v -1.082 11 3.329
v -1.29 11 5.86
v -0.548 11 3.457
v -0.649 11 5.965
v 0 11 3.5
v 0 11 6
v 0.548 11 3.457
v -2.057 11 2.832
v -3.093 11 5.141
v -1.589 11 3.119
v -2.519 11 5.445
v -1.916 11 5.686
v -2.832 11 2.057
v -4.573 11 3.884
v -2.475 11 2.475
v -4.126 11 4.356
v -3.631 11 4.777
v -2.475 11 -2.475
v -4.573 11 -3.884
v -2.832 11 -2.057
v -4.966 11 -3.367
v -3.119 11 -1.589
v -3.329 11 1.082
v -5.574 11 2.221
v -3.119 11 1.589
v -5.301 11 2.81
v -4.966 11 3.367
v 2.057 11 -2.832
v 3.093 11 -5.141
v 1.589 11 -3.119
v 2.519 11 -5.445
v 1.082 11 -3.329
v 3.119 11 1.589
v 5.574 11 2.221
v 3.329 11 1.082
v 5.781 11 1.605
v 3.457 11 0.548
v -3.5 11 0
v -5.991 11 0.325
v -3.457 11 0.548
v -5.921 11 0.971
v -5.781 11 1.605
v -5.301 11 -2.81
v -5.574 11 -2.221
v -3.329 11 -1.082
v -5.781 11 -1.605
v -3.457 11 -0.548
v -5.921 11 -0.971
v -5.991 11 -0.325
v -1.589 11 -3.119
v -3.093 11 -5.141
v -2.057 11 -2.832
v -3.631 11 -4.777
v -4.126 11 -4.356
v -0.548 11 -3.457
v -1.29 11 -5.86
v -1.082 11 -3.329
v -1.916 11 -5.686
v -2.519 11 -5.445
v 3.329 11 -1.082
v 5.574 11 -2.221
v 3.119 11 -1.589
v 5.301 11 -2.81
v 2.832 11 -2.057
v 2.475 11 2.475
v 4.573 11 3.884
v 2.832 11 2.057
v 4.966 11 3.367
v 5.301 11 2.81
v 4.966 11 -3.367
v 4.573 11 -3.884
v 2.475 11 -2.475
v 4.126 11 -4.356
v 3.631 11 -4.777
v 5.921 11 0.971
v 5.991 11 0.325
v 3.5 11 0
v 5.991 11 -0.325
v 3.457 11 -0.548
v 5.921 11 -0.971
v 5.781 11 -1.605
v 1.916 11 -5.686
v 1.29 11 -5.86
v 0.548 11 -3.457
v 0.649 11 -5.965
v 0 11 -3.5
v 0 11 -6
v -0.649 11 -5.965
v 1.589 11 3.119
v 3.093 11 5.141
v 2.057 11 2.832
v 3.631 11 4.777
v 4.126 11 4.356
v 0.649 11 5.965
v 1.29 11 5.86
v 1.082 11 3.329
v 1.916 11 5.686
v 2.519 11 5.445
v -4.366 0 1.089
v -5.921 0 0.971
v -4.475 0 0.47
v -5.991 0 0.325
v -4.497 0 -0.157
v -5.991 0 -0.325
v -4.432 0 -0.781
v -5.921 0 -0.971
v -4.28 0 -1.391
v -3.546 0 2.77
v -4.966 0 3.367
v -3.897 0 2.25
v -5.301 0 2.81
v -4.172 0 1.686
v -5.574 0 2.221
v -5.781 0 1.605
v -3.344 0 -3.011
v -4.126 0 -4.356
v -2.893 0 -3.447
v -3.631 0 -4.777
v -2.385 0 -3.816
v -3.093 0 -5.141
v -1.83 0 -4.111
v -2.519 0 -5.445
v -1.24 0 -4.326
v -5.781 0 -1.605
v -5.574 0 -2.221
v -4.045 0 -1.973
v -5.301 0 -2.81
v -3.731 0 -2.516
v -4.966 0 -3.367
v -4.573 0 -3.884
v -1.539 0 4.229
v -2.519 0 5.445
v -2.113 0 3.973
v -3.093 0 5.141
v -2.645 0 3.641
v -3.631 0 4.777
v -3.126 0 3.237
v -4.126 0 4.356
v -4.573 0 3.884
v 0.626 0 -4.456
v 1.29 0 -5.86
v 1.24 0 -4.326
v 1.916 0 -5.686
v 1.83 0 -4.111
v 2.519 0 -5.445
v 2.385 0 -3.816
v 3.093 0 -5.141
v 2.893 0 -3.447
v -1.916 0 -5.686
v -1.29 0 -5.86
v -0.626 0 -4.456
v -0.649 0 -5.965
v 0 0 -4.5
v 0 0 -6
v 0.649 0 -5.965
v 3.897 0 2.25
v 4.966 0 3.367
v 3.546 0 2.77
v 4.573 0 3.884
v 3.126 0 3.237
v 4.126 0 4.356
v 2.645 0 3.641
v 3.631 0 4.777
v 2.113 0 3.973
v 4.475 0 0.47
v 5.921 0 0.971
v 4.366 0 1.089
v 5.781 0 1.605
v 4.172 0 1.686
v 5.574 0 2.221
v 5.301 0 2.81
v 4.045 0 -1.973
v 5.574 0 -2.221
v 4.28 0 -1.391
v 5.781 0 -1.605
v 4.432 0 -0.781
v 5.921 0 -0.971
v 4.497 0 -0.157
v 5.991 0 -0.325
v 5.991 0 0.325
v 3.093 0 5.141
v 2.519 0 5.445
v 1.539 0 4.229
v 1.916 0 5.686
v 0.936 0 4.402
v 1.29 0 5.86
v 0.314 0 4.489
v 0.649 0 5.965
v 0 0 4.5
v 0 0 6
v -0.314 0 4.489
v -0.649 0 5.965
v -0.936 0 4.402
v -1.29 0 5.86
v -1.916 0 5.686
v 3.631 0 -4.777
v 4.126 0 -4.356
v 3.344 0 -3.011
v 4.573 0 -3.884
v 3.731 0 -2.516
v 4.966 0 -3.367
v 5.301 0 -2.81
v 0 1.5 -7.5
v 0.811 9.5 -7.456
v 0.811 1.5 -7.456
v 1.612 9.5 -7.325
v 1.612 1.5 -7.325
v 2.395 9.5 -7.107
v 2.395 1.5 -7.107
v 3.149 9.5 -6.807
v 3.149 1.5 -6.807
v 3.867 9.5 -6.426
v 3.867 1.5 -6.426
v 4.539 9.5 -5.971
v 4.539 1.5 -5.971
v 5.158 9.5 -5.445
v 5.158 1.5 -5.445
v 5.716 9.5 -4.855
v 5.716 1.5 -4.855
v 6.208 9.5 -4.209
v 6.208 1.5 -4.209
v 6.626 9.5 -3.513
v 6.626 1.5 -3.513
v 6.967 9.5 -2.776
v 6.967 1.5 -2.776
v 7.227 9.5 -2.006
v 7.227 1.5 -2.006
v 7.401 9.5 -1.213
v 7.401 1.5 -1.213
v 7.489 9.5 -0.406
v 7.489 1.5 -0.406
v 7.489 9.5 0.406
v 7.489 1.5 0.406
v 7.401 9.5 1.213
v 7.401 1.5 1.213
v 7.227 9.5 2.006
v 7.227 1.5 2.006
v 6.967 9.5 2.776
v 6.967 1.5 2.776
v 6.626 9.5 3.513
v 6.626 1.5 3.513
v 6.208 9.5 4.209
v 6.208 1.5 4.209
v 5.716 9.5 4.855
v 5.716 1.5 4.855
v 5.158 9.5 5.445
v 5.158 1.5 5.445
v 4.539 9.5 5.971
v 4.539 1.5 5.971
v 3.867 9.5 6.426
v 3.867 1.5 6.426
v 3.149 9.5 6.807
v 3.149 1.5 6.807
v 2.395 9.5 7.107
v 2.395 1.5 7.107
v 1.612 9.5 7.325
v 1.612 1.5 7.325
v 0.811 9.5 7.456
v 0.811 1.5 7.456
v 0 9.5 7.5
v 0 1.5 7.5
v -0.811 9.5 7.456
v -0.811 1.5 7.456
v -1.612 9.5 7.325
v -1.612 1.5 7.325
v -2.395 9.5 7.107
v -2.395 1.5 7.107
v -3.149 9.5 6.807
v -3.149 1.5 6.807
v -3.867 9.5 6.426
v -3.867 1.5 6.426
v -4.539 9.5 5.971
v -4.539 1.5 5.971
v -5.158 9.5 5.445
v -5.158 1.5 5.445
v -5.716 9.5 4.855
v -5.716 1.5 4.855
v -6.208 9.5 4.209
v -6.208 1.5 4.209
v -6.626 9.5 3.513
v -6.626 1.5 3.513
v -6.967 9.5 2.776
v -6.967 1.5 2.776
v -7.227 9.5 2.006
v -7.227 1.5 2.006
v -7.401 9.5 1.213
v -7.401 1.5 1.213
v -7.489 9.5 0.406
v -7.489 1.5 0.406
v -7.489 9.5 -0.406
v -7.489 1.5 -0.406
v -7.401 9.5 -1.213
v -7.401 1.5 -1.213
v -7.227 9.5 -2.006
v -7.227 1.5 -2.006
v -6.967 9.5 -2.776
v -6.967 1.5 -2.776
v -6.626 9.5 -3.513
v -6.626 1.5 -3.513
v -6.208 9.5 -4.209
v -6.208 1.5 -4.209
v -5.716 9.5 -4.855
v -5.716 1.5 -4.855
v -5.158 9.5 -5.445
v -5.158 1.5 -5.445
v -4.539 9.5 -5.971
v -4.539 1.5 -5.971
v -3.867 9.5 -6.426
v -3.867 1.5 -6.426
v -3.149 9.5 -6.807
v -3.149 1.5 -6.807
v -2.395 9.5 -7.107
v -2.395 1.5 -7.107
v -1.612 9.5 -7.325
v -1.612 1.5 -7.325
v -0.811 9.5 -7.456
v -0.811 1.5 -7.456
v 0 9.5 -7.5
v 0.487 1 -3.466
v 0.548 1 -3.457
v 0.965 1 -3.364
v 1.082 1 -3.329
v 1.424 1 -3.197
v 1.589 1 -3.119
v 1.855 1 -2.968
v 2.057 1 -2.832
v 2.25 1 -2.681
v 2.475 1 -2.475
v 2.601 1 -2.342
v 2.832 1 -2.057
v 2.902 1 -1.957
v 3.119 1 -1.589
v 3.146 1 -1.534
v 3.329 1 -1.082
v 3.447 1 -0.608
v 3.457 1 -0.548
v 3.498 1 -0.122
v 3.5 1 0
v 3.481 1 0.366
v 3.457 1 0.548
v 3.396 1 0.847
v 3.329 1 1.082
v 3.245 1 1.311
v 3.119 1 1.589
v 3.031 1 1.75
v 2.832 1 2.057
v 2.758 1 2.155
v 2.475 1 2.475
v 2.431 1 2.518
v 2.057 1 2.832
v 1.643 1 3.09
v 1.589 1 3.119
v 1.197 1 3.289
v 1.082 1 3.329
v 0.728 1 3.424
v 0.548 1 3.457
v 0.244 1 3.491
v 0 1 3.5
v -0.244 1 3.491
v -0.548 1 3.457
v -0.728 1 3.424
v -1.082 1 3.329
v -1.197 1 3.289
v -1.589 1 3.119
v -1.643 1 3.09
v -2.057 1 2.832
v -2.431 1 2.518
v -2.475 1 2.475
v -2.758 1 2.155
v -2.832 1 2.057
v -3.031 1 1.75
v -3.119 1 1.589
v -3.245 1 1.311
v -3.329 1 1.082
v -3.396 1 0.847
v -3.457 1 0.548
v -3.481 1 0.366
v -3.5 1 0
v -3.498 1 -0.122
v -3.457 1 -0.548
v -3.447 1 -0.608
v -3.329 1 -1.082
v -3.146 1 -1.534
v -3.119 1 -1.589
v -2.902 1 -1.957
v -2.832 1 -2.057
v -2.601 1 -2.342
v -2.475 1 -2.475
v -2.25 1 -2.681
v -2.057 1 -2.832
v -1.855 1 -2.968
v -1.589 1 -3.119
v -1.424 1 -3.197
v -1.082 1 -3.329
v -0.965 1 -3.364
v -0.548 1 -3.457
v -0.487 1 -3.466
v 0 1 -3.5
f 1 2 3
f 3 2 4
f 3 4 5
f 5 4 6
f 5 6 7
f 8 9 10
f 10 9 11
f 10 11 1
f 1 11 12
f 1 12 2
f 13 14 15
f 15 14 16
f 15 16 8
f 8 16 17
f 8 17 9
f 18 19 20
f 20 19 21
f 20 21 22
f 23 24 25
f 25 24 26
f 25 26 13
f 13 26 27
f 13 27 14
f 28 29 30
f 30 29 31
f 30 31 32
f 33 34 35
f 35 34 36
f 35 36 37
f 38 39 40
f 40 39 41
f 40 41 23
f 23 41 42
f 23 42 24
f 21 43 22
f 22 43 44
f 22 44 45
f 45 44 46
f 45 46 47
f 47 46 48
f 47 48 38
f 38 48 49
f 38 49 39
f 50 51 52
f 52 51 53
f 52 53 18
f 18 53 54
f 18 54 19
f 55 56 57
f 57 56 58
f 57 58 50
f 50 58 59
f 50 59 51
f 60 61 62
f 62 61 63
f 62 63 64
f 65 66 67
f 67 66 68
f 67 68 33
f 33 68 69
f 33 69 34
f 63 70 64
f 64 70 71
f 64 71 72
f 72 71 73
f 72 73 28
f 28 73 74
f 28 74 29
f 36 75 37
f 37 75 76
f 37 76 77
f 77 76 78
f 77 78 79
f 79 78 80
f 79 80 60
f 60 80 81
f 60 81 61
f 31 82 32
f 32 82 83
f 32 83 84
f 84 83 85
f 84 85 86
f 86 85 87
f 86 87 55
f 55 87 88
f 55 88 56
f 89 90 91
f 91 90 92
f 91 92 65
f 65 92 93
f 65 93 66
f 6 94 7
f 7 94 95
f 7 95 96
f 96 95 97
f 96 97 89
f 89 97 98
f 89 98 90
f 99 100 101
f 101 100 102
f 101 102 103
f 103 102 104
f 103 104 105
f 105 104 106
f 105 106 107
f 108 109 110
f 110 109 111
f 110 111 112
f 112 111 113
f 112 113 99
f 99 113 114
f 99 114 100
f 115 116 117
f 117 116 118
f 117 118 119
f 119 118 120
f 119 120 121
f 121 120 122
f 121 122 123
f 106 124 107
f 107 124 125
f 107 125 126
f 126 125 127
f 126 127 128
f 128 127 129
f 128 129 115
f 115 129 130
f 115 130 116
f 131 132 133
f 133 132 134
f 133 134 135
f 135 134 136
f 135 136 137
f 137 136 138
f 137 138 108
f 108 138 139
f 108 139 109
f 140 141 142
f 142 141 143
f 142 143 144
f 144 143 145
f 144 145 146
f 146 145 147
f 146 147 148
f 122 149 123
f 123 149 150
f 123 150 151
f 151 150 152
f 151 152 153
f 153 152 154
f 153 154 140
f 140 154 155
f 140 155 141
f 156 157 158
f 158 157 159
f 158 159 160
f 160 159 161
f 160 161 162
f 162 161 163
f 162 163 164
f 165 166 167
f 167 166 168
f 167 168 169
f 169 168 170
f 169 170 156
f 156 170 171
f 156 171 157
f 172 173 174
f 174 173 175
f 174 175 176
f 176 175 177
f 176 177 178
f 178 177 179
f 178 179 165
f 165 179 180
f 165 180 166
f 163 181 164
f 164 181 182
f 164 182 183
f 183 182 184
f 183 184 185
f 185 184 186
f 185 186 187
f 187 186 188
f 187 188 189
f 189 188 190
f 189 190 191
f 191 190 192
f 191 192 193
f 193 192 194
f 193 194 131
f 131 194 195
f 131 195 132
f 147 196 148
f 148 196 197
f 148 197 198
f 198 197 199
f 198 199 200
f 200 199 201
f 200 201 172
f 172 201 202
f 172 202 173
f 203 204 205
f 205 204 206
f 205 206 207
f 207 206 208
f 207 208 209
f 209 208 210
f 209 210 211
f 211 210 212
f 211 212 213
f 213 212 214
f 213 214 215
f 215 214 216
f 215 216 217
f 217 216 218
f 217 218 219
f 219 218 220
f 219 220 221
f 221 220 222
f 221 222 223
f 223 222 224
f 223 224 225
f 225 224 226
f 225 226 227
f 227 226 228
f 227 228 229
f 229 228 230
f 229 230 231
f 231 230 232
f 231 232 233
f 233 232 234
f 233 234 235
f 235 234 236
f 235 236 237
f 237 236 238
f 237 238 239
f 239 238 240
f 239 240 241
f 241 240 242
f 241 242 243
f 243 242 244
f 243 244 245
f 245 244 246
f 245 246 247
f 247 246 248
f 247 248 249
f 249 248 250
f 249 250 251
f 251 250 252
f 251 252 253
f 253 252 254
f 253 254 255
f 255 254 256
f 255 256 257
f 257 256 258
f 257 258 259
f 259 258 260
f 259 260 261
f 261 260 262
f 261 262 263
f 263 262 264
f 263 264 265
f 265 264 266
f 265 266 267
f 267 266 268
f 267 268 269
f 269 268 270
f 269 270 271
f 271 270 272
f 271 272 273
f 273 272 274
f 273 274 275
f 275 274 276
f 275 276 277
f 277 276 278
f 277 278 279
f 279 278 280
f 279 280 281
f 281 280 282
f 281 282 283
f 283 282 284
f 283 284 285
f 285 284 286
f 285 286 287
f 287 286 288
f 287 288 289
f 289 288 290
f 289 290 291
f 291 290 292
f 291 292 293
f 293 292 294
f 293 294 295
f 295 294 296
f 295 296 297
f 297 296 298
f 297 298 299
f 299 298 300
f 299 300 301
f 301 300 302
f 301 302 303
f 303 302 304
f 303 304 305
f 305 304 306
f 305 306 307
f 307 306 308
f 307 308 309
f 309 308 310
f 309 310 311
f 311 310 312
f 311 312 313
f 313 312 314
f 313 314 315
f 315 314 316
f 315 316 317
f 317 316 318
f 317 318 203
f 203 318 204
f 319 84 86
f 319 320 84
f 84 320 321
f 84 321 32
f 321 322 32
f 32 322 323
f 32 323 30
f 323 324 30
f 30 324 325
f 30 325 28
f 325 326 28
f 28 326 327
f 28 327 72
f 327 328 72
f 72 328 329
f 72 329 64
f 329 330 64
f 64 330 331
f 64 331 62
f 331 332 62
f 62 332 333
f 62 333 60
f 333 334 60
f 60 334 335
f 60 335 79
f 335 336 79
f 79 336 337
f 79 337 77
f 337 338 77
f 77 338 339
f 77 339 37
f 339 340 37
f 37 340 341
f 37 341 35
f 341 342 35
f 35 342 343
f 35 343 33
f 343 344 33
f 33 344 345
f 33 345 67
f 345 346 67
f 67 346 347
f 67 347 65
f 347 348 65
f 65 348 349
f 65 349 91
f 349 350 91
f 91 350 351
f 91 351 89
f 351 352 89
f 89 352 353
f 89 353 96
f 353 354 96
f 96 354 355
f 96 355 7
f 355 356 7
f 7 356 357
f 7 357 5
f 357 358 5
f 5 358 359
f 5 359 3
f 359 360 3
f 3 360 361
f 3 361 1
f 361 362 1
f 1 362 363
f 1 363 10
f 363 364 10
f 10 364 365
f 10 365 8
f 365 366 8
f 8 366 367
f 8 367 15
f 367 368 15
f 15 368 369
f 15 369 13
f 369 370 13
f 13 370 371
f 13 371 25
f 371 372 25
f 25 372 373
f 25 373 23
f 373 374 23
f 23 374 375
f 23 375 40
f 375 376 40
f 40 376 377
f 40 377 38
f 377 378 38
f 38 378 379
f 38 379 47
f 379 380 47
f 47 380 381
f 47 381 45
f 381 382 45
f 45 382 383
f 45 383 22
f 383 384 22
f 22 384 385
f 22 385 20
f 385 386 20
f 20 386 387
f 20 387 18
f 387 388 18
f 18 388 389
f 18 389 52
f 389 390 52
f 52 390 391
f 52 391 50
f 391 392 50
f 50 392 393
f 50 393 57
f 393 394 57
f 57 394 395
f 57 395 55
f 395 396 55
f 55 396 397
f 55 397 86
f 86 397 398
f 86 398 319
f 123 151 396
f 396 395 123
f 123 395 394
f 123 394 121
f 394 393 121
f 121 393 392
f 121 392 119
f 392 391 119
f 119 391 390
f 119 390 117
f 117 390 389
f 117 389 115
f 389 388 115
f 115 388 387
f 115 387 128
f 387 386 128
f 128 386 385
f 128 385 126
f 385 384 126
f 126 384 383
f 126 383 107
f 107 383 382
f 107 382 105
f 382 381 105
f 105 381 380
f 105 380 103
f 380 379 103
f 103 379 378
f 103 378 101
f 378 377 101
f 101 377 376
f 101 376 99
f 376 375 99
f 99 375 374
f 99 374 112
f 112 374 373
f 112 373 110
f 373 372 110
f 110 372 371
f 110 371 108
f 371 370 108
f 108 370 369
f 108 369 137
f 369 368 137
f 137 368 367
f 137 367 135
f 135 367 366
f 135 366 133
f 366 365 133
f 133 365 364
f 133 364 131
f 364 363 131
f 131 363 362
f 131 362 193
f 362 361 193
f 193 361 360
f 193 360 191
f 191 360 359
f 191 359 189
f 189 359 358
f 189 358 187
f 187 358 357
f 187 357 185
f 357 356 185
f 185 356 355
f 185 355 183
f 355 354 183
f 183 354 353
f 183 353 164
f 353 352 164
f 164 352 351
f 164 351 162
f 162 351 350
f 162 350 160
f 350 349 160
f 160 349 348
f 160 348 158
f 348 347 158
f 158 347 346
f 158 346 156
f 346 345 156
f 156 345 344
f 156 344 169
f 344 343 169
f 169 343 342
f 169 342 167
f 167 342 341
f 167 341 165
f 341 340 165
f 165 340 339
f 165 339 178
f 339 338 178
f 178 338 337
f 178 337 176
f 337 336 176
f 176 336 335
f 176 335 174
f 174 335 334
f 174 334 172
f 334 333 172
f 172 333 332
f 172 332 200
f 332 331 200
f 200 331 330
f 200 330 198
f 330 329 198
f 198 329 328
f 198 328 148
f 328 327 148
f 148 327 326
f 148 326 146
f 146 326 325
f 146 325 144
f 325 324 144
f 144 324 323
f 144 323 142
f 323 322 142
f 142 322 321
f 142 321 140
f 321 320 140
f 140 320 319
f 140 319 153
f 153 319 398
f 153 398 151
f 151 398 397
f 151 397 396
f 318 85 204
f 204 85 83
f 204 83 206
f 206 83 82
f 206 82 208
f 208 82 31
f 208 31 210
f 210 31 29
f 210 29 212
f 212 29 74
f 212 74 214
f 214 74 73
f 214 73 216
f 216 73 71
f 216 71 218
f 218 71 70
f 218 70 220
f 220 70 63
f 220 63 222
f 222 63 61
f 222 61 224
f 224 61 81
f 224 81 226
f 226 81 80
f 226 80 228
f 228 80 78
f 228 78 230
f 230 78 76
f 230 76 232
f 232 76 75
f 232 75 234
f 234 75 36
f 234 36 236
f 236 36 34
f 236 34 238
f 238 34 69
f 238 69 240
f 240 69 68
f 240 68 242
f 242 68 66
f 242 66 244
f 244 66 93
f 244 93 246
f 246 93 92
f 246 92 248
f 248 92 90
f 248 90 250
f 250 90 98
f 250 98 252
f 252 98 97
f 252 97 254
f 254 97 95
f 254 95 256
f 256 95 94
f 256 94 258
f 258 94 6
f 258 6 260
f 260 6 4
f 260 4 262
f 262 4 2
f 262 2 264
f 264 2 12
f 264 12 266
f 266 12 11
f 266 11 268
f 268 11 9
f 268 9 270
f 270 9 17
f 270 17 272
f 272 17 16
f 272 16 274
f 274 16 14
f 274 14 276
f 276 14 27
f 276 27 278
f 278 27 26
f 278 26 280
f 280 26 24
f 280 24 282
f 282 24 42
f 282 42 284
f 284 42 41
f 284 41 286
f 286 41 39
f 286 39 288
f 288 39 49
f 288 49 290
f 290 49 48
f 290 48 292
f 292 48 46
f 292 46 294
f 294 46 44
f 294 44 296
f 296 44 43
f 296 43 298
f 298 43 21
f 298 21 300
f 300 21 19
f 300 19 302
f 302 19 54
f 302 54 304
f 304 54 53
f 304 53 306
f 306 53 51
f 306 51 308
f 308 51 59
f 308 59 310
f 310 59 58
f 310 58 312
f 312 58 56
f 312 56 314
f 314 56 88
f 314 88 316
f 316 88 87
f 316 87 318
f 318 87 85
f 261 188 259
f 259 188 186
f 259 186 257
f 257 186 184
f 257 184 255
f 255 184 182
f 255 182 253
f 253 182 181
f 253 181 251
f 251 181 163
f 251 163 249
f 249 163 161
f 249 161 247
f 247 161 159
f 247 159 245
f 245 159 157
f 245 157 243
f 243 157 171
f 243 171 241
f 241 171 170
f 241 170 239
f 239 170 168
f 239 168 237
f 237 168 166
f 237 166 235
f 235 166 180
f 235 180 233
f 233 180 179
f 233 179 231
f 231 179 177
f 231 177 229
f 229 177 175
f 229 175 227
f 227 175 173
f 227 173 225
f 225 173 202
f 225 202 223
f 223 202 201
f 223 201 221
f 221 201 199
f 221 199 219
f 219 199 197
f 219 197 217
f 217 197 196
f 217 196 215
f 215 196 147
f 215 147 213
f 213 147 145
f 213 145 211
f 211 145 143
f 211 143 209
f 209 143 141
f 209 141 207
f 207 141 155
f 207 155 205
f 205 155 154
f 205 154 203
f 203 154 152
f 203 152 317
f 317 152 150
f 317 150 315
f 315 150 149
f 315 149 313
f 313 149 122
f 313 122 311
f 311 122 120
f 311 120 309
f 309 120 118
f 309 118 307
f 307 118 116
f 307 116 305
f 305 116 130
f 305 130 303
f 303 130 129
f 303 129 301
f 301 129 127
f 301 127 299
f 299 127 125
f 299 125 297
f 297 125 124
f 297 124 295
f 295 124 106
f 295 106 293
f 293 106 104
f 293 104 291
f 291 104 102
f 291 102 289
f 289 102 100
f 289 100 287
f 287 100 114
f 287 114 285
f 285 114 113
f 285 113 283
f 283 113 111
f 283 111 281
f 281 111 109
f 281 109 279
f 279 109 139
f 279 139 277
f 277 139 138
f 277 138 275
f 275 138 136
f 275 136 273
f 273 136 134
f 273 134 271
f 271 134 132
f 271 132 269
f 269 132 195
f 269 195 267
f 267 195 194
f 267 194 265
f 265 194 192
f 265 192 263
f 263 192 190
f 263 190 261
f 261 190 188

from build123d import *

# Parameters (mm, degrees)
SKETCH1_R           = 7.5
SKETCH1_R_2         = 3.5
BOSS_EXTRUDE1_DEPTH = 11
CHAMFER1_SIZE       = 1
CHAMFER2_SIZE       = 1.5


with BuildPart() as part:
    # Sketch1 → Boss-Extrude1 (new body)
    with BuildSketch(Plane(origin=(0, 0, 0), x_dir=(1, 0, 0), z_dir=(0, 1, 0))):
        with Locations(Location((0, 0, 0), (0, 0, 270))):
            Circle(SKETCH1_R)
        with Locations(Location((0, 0, 0), (0, 0, 270))):
            Circle(SKETCH1_R_2, mode=Mode.SUBTRACT)
    extrude(amount=BOSS_EXTRUDE1_DEPTH)

    # Chamfer1
    chamfer1_edges = [part.edges().sort_by_distance(p)[0] for p in [
        (0, 0, -3.5),
    ]]
    chamfer(chamfer1_edges, length=CHAMFER1_SIZE)

    # Chamfer2
    chamfer2_edges = [part.edges().sort_by_distance(p)[0] for p in [
        (0, 0, -7.5),
        (0, 11, -7.5),
    ]]
    chamfer(chamfer2_edges, length=CHAMFER2_SIZE)


solid = part.part
